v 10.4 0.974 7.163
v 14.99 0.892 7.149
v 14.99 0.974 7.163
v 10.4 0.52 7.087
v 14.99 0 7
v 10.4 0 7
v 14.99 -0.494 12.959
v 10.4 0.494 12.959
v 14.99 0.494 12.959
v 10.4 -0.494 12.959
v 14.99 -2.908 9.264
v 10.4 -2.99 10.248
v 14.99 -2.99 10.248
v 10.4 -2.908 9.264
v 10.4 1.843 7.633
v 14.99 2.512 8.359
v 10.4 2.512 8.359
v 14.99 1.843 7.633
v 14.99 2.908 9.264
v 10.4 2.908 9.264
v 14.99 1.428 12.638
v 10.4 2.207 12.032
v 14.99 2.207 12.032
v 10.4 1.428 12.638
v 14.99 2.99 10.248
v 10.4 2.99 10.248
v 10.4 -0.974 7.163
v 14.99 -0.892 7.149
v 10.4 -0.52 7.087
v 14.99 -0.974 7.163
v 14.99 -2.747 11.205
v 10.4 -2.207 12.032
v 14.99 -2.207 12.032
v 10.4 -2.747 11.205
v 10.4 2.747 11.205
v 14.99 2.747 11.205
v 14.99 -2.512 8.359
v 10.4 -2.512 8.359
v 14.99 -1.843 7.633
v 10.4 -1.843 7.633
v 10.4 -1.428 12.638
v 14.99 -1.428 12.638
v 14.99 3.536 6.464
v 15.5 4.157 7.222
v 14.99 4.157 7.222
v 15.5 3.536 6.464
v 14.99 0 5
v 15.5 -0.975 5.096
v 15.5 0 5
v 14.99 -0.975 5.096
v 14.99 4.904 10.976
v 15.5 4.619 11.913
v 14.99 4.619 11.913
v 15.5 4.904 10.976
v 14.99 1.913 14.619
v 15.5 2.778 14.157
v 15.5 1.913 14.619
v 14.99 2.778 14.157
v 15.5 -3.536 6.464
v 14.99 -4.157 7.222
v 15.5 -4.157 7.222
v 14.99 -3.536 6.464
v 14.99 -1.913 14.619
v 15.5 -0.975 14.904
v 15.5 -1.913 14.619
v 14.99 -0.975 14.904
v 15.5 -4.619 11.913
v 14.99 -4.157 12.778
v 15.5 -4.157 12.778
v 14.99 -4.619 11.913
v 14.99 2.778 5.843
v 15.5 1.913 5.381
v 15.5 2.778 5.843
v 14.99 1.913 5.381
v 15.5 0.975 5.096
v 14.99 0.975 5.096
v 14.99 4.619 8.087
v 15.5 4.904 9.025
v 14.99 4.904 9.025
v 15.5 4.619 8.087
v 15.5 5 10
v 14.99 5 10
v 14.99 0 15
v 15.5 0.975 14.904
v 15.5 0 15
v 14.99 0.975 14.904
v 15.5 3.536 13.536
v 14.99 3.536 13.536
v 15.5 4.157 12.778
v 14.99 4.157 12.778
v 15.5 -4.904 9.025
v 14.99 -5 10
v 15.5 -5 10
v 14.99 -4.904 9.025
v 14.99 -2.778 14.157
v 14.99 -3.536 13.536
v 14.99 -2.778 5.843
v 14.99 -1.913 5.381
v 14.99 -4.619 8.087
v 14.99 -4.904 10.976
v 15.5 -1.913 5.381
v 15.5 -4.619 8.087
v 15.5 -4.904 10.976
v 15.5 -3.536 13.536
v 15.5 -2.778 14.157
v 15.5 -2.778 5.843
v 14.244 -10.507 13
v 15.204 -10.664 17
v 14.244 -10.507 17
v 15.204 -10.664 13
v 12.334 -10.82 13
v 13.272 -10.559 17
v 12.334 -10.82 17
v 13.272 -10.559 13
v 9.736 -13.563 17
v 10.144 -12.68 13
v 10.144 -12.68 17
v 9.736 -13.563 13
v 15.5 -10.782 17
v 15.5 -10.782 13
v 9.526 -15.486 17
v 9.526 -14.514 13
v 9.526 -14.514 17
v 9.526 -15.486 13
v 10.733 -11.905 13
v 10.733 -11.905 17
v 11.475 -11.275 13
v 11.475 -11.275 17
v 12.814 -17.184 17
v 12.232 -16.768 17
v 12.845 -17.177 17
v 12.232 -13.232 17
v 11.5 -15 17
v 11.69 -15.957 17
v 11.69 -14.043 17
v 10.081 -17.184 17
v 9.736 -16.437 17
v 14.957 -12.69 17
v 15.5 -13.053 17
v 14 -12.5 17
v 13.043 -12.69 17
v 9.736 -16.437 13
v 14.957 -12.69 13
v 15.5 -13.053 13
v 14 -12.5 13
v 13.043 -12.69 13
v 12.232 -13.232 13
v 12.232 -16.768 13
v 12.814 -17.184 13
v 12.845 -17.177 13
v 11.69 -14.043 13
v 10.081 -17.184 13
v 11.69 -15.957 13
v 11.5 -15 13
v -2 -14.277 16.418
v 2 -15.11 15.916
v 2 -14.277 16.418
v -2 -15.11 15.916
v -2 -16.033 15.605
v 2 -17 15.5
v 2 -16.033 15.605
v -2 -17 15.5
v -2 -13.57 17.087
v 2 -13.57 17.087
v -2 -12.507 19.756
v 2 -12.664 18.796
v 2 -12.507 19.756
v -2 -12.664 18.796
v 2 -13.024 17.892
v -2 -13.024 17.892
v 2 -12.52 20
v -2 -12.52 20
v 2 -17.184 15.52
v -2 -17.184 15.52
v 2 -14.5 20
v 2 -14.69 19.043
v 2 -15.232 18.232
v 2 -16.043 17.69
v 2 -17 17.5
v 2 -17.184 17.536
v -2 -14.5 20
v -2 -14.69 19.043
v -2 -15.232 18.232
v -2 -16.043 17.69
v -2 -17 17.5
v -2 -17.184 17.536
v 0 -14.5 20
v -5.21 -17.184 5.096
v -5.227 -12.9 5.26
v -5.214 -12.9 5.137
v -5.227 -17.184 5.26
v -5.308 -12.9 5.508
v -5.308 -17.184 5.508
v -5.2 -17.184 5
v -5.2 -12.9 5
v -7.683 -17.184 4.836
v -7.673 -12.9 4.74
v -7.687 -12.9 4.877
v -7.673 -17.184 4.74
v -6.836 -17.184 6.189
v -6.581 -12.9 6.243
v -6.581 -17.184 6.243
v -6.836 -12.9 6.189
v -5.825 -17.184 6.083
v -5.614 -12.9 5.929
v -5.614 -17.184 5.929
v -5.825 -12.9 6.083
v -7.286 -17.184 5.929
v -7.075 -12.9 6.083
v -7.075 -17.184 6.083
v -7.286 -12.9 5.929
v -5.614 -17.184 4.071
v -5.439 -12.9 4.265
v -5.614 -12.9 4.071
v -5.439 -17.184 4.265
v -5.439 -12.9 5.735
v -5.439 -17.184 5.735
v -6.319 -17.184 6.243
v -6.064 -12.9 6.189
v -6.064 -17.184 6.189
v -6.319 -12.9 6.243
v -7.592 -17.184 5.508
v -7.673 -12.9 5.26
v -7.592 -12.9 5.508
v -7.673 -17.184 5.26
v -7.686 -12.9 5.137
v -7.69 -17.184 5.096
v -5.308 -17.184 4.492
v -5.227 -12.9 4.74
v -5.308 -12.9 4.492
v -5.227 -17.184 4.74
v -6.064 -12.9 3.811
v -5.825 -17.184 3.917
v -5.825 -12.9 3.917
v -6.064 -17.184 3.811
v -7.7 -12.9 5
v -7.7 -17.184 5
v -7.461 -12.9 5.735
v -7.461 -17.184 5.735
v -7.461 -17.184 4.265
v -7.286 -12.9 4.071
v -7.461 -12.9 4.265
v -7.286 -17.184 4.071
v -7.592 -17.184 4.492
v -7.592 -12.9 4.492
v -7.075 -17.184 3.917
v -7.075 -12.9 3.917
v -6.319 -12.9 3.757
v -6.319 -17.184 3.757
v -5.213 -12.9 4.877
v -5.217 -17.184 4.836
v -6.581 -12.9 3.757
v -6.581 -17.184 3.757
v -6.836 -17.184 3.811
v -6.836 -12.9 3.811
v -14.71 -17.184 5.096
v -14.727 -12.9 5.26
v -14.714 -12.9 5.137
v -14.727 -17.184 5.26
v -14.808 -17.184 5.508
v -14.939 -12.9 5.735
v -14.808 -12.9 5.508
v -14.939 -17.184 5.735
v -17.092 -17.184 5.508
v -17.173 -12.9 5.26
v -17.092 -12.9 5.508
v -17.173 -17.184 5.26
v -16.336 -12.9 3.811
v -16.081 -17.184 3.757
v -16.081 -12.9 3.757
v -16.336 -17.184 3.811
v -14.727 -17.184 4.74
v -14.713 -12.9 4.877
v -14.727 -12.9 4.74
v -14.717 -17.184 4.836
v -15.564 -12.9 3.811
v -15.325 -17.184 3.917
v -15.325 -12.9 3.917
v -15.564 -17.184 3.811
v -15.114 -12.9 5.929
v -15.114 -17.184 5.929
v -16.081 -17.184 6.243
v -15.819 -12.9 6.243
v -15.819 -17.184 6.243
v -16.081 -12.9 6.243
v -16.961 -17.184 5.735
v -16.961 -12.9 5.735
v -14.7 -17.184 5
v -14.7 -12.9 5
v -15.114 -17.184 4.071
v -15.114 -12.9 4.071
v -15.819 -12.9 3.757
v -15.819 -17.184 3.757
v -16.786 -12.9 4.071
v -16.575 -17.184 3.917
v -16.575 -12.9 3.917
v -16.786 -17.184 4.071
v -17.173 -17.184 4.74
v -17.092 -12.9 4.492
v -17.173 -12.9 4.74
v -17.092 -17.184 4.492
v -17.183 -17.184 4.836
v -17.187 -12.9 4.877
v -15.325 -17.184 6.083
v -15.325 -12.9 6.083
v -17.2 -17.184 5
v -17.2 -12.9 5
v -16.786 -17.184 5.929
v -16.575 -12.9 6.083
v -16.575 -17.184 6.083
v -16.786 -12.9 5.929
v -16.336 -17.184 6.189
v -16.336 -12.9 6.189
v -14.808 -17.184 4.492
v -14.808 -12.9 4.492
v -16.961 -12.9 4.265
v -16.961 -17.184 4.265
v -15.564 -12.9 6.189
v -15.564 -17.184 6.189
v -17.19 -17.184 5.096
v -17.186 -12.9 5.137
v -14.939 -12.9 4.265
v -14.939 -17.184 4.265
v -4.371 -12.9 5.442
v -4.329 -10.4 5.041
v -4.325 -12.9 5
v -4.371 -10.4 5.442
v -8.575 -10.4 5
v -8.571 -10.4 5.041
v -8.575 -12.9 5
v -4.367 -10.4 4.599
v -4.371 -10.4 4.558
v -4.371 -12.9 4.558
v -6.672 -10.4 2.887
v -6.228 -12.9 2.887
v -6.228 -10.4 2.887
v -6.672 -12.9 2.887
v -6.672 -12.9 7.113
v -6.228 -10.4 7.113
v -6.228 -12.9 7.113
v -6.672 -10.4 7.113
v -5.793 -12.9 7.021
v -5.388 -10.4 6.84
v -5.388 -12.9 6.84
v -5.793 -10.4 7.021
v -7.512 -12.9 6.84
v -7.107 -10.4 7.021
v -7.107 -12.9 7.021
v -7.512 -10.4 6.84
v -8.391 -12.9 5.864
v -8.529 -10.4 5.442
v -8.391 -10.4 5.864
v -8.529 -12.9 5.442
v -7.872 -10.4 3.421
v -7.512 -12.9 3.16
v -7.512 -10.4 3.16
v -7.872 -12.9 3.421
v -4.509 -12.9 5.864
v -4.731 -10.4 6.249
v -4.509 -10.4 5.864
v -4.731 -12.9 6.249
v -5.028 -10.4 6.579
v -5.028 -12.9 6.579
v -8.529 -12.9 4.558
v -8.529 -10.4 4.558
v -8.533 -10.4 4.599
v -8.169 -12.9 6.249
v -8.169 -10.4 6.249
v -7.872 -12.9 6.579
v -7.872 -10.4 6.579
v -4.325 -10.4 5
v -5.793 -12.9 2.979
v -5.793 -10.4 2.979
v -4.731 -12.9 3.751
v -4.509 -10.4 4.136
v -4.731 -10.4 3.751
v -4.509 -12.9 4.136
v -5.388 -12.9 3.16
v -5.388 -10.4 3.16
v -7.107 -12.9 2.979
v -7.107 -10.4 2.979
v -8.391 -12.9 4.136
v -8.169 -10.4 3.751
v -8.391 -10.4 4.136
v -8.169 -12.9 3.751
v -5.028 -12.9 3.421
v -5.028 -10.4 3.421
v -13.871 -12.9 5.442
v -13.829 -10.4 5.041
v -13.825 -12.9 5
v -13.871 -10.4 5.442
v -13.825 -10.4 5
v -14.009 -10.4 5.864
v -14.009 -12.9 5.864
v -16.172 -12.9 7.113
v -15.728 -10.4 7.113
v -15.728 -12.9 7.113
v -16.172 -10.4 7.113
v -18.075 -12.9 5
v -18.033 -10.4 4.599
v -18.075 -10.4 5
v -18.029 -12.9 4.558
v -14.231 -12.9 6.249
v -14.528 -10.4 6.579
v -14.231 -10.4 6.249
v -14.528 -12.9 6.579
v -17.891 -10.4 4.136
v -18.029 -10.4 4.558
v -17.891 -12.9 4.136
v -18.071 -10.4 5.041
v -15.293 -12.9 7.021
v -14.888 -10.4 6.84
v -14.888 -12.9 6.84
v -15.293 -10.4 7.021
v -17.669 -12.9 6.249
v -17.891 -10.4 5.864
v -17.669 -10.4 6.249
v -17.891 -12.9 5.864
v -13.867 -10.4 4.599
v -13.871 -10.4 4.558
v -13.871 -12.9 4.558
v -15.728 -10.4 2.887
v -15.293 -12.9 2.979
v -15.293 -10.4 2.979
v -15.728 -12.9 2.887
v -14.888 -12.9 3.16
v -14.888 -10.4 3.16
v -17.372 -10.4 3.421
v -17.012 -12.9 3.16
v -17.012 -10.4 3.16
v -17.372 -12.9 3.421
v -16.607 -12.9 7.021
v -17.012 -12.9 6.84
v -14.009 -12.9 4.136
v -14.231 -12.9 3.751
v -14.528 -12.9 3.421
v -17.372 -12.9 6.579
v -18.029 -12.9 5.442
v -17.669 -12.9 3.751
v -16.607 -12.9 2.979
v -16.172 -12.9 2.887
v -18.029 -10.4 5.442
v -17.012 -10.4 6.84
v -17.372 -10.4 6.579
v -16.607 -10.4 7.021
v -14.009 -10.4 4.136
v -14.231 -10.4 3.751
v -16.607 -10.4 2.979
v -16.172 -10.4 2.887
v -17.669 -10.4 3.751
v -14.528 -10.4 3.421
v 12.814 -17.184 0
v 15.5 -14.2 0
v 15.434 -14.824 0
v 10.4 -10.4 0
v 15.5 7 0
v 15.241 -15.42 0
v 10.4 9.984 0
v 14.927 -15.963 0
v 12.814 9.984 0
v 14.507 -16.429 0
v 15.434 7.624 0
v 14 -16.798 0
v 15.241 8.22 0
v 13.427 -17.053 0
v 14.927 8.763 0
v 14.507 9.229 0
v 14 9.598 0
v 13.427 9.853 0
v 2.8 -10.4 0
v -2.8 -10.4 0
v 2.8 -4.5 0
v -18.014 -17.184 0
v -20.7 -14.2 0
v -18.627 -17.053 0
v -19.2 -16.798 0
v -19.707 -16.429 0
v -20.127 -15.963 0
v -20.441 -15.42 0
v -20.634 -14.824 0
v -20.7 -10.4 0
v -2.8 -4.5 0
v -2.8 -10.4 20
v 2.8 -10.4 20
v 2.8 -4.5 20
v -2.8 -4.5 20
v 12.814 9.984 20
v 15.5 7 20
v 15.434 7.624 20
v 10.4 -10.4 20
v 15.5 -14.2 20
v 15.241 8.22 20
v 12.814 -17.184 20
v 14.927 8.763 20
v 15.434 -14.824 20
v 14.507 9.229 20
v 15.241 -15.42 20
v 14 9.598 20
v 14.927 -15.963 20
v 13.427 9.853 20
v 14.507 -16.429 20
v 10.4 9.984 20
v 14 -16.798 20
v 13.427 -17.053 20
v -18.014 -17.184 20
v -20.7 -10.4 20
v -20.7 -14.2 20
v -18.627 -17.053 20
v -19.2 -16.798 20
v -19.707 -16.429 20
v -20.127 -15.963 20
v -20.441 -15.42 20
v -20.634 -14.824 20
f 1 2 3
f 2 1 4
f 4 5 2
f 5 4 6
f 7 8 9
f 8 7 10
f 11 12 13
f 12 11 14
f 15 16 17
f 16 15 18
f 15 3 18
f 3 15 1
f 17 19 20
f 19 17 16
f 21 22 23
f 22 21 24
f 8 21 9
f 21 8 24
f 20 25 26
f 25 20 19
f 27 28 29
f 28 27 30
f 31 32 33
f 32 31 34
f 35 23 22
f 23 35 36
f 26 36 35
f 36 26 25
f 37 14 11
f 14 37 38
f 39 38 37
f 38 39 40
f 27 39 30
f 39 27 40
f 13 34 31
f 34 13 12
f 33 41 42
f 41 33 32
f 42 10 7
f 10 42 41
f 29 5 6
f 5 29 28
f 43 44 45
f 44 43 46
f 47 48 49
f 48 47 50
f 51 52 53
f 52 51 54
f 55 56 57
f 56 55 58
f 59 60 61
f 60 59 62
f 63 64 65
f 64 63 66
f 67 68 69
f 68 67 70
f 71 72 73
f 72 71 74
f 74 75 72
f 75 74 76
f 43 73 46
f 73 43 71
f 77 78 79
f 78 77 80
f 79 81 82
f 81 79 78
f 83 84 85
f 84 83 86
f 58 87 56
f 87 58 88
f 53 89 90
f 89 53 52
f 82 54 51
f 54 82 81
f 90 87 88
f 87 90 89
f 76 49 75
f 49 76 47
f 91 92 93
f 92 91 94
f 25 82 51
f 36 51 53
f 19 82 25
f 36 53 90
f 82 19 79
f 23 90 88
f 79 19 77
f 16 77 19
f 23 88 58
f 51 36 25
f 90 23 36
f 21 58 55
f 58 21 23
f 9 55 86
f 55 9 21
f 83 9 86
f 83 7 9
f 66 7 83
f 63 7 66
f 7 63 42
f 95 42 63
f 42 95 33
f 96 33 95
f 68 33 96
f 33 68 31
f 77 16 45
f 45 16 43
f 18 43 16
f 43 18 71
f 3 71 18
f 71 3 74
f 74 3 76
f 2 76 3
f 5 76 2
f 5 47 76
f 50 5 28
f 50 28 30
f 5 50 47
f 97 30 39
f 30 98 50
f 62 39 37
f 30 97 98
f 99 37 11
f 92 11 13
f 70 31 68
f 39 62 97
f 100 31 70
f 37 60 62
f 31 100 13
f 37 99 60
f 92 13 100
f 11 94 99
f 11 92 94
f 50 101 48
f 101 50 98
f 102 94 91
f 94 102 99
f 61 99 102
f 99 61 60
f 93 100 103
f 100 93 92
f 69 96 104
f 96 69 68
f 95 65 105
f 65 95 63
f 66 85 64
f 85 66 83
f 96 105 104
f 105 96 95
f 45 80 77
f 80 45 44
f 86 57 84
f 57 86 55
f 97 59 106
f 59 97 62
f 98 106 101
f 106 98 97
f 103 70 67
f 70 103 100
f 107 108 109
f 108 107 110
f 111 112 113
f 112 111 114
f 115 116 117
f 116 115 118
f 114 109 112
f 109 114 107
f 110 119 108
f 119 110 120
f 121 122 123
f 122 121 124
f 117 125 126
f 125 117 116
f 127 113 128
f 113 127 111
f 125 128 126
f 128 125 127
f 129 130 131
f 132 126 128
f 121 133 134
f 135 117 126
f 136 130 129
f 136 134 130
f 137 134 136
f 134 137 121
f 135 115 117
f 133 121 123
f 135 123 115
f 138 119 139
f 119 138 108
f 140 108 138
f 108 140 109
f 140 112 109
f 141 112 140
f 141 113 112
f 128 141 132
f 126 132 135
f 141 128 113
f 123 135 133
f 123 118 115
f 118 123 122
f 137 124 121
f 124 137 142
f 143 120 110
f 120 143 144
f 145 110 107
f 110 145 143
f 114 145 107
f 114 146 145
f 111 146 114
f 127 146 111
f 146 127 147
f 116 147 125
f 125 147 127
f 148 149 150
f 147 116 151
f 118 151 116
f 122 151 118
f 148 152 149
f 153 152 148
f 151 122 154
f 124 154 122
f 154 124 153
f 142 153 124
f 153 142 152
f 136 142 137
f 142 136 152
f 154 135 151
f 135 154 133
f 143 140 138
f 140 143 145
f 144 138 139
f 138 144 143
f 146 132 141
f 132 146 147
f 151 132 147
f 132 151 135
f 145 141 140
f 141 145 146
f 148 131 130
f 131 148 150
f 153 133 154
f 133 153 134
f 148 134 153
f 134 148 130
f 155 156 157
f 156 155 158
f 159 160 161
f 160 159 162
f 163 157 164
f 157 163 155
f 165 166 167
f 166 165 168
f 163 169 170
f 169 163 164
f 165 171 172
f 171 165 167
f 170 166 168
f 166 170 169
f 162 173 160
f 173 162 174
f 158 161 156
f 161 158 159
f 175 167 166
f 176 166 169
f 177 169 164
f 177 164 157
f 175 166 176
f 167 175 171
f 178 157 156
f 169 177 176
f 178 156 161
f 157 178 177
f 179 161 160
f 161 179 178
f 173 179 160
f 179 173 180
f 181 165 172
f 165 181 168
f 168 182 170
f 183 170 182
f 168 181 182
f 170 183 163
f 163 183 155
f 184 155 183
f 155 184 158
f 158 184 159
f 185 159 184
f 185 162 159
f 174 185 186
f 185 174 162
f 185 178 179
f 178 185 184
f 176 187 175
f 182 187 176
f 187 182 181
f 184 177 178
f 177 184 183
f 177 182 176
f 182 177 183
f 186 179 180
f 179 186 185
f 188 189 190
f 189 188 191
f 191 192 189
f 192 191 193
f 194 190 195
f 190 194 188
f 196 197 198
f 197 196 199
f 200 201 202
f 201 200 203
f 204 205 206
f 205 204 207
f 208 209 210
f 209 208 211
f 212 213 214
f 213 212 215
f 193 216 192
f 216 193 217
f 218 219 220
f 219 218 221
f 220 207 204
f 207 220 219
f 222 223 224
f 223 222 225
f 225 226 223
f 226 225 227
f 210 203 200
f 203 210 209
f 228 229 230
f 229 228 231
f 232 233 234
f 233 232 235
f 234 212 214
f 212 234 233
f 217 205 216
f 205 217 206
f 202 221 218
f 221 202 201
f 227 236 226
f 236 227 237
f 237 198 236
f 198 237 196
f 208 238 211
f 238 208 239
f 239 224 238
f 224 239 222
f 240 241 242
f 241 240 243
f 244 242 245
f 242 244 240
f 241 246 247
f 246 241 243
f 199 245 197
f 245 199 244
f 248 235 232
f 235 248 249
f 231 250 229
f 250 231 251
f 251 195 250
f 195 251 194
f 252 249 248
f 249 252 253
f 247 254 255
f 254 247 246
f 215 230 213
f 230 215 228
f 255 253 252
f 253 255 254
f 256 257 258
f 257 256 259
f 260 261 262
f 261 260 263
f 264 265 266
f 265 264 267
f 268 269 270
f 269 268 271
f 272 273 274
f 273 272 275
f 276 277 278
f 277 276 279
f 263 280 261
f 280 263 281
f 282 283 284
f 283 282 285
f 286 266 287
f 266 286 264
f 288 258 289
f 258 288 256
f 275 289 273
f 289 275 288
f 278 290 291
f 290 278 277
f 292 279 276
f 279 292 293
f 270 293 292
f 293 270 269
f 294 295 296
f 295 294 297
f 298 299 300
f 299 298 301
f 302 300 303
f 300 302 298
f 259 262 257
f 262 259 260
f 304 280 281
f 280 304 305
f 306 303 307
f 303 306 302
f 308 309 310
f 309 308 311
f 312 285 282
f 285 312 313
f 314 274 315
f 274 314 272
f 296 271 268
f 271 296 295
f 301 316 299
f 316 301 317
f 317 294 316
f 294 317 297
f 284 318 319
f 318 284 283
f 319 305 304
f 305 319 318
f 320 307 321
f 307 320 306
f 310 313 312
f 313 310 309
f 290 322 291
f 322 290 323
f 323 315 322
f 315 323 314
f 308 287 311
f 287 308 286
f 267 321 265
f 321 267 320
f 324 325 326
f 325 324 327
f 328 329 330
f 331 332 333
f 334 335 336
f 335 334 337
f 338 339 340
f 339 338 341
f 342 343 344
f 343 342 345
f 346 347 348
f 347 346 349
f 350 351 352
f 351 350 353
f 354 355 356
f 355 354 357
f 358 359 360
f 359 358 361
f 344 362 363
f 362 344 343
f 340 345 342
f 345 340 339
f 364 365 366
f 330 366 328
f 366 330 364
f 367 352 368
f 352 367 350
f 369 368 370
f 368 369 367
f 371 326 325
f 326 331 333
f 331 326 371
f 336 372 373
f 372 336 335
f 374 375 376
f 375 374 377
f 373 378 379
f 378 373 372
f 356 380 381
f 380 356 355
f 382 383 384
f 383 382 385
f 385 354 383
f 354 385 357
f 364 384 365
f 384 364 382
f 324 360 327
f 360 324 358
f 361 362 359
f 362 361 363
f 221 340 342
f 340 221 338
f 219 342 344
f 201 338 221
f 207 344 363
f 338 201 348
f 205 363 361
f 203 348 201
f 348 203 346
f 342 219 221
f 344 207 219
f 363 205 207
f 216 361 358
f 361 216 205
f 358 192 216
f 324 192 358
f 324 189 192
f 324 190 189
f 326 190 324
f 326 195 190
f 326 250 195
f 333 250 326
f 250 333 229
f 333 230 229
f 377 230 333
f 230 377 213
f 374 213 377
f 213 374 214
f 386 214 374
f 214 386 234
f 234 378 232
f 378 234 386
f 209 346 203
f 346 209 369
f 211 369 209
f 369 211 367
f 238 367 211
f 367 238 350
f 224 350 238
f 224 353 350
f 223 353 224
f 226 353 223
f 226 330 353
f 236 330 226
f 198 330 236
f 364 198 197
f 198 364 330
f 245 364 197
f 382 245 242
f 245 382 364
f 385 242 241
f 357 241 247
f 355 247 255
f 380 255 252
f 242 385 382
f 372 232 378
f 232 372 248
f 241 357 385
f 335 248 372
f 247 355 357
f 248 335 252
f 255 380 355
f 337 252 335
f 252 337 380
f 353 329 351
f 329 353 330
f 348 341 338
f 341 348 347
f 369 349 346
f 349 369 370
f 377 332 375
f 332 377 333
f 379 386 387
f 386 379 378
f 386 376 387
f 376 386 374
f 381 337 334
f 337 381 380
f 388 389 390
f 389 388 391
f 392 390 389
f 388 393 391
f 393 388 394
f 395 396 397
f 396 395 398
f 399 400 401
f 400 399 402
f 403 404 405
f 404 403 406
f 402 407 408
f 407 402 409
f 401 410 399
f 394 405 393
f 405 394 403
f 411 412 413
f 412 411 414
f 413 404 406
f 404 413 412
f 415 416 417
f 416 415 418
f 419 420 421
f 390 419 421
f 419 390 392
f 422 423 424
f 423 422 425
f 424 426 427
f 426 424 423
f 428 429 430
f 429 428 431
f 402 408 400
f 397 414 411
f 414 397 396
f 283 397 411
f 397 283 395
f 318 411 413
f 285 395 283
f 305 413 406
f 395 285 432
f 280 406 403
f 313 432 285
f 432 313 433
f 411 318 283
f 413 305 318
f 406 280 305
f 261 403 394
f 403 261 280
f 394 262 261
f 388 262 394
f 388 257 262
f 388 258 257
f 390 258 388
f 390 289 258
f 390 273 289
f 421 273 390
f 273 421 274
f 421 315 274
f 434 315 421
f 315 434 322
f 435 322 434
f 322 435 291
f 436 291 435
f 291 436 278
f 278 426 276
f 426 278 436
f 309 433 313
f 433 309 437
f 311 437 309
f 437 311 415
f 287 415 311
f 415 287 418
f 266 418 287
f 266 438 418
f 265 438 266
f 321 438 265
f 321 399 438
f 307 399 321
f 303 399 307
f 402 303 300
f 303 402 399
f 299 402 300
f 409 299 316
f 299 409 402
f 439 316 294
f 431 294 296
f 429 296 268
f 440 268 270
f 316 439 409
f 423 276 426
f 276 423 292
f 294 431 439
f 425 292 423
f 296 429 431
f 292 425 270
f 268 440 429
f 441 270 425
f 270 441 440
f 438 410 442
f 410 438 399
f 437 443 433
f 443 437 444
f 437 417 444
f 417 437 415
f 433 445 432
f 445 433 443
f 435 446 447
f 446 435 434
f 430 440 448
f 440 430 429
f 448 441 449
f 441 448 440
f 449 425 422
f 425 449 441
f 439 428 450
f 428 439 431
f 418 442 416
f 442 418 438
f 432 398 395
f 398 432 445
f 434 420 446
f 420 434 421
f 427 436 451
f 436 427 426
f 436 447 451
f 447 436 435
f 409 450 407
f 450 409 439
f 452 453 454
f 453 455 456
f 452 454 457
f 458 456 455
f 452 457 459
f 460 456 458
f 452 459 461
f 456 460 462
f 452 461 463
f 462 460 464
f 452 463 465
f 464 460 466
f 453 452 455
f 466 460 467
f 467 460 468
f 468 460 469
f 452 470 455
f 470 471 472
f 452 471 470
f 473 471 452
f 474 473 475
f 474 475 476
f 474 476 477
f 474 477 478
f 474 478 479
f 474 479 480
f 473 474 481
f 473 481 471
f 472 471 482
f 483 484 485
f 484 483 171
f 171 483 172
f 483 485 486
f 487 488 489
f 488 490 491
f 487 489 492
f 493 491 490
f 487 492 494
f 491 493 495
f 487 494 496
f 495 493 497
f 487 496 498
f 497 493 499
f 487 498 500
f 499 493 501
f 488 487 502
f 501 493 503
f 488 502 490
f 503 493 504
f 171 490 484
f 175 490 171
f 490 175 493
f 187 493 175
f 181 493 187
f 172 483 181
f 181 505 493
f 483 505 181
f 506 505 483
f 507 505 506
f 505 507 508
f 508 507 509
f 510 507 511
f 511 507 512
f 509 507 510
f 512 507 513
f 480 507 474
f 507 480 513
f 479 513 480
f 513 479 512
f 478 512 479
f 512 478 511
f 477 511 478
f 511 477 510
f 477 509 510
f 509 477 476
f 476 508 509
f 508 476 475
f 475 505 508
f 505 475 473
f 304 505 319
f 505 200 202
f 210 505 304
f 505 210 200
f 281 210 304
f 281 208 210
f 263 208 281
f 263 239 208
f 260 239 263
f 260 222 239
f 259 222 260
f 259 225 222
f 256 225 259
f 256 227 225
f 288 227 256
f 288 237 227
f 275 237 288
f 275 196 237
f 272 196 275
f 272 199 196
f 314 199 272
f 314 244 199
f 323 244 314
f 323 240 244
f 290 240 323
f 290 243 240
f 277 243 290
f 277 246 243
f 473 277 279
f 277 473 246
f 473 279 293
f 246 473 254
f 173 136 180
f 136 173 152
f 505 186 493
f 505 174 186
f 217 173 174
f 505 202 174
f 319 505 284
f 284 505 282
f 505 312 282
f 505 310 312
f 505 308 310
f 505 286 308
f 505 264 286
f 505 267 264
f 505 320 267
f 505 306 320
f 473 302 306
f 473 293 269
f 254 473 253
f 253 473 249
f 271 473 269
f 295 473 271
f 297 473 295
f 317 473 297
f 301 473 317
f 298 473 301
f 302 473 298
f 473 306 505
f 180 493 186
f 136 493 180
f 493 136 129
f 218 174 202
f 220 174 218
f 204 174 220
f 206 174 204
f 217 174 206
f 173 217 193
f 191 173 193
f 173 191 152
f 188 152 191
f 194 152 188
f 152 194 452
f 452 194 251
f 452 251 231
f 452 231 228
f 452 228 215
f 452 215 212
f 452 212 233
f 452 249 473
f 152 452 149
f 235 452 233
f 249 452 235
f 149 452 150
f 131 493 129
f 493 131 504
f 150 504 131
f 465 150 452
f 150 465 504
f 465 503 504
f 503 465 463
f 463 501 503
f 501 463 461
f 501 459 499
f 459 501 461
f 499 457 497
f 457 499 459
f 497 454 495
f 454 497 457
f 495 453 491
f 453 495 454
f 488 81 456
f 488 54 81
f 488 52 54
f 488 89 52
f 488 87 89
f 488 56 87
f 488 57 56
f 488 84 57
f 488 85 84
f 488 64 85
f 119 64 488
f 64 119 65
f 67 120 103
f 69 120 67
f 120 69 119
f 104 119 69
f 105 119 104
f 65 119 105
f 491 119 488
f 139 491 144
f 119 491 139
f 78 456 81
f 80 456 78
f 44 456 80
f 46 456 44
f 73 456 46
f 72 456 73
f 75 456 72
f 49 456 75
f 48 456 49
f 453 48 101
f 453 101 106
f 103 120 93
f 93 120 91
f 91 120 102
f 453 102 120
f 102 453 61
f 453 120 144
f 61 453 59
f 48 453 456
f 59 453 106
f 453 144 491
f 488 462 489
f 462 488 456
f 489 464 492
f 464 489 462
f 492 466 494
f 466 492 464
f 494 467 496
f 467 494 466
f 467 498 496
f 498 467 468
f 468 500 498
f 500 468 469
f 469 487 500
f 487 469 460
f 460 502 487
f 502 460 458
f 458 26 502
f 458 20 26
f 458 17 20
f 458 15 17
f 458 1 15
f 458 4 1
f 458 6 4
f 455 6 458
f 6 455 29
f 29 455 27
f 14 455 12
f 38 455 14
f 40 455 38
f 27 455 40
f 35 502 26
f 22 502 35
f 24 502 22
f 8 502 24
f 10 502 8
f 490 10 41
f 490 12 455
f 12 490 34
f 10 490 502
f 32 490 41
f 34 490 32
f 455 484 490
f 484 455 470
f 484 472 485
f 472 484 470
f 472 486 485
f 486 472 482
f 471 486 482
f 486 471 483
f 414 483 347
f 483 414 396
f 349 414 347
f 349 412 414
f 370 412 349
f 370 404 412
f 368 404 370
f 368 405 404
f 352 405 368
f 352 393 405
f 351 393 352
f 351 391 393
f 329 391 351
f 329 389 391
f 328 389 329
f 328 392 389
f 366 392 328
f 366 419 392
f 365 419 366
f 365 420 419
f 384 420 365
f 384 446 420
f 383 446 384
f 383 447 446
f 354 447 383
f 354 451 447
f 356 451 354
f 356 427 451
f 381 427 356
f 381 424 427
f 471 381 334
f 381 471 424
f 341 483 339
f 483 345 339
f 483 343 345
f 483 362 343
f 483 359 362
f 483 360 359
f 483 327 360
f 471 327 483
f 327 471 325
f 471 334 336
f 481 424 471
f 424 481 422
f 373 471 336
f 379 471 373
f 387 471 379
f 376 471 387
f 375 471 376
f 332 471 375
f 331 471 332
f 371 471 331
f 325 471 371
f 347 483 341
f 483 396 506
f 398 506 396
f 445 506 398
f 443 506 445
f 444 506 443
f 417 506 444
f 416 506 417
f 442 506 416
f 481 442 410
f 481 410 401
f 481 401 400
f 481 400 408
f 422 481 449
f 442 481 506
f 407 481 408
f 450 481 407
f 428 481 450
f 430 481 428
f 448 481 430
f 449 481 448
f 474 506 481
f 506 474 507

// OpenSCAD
// file: config.scad
//triangular vertex peices
$fa=1;
$fs=1;
ep=0.01;
//parametrics
//cutout for the AL extrusions, with 2 opposite tracks having an inset
//tweaked from ideal to satisfy printing limits
side=20;    //size of a side of the extrusion
slot=6-.4;     //width of the slots, on the face
central=8+1;  //how wide the central pillar is; the slot depth is then (side-central)/2
//corner radius
vertex_rad=40;
//distance from edge to vertical 2020 shaft
vert_inset=6;
//thickness of the wall on the inside of the triangle
inside_wall_thick=6;
//belt channel width
channel_width=26;
//lenght of plastic alongside in-plane extrusion
wing_length=70;
//height of the frame piece
piece_h=50;
//mounting hardware
m5_slot=6;
m5_head=10; //diameter of M5 head
m5_wall=5; //thickness of plastic between M5 and extrusion
//m3 sizing
m3_slot=3.5;
module 2020_cutout_two()
{
    ss=side+.8; //printer tolerance
    difference()
    {
        //main body
        square([ss,ss],center=true);
        //track slots
        translate([ss/2+central/2,0])square([ss,slot],center=true);
        translate([-(ss/2+central/2),0])square([ss,slot],center=true);
        translate([0,(ss/2+central/2)])square([slot,ss],center=true);
    }
}
module nut_fill()
{
    nut_w=10.5+1;
    nut_w_b=6.5+1.5;
    nut_depth=(side-central)/2;
    //spaces for inserting the t slot nuts
    //translate([0,0,-nut_depth/2])
    hull()
    {
        cube([nut_w+3,nut_w*2,ep],center=true);
        translate([0,0,-nut_depth])cube([nut_w_b,nut_w*2,ep],center=true);
    }
    //cube([nut_w,nut_w*2,nut_depth],center=true);
}
module base_shape()
{
    difference()
    {
        union()
        {
            //rounded vertex
            circle(r=vertex_rad,center=true);
            //'wings' along in plane extrusion lengths
            rotate([0,0,60])translate([-side+vertex_rad-inside_wall_thick*2,wing_length/2])square([inside_wall_thick*4,wing_length],center=true); 
            rotate([0,0,-60])translate([-side+vertex_rad-inside_wall_thick*2,-wing_length/2])square([inside_wall_thick*4,wing_length],center=true); 
        }
        //in plane extrusions
        rotate([0,0,60])translate([-side/2+vertex_rad,vertex_rad/2])square([side,vertex_rad],center=true);
        rotate([0,0,-60])translate([-side/2+vertex_rad,-vertex_rad/2])square([side,vertex_rad],center=true);
        //vertical extrusion
        translate([(-side/2)+vertex_rad-vert_inset,0,0])rotate([0,0,90])2020_cutout_two();
        //opening for belts or motor
        motor_gap();
        //any remaining portion of hte circle we want removed
        open_inside();
    }
}
module motor_gap()
{
    //create rough triangle of unneeded area
    round=2;
    xx=-side-inside_wall_thick-round;
    qq=-(channel_width)/2+vertex_rad-vert_inset-side-inside_wall_thick;
    //make round
    minkowski()
    {
        intersection()
        {
            rotate([0,0,60])translate([xx,0])square([vertex_rad*2,vertex_rad*4],center=true);
            rotate([0,0,-60])translate([xx,0])square([vertex_rad*2,vertex_rad*4],center=true);
            translate([qq,0])square([channel_width-round*2,vertex_rad*2],center=true);
        }
        circle(r=round+0.01,$fn=40);
    }
}
module open_inside()
{
    //rest of interior
    //create rough triangle of unneeded area
    round=2;
    xx=-side-inside_wall_thick-round;
    qq=-side-inside_wall_thick-vert_inset-channel_width-inside_wall_thick;
    //make round
    minkowski()
    {
        intersection()
        {
            rotate([0,0,60])translate([xx,wing_length])square([vertex_rad*2,vertex_rad*4+wing_length],center=true);
            rotate([0,0,-60])translate([xx,-wing_length])square([vertex_rad*2,vertex_rad*4+wing_length],center=true);
            translate([qq,0])square([vertex_rad*2-round*2,vertex_rad*2+wing_length],center=true);
        }
        circle(r=round+0.01,$fn=40);
    }
}
// main file
include<config.scad>;

switch_mount_hole_spacing=9.5;
switch_mount_hh=5;
module m5_hole()
{
    rotate([0,90,0])cylinder(r=m5_slot/2,h=inside_wall_thick*2,center=true);
    rotate([0,90,0])translate([0,0,inside_wall_thick+m5_wall-ep])cylinder(r=m5_head/2,h=inside_wall_thick*2,center=true);
}

//m5_hole();
xside=side+m5_wall;
yside=side+1+5+1.2;
round=3;
overhang=11.2;
module profile_a()
{
    difference()
    {
        translate([round,-(yside-side)/2,0])minkowski()
        {
            square([xside-round*2,yside-round*2],center=true);
            circle(r=round,$fn=30);
        }
        extrusion_side_profile();
    }
}
module profile_b()
{
    //extension
    
    difference()
    {
        translate([round-overhang/2,-(yside-side)/2,0])minkowski()
        {
            square([xside-round*2+overhang,yside-round*2],center=true);
            circle(r=round,$fn=30);
        }
        extrusion_side_profile();
        translate([-overhang-side/2,0])square([side+overhang,side+.8],center=true);
    }
}
module extrusion_side_profile()
{
    rotate([0,0,90])2020_cutout_two();
    translate([-side/2+slot/2+ep,side/2-slot/2-ep])square([side,side],center=true);
    
}
hh=20;
m2_slot=2.5;
m2_head=3.75+.5;
head_d=2.5;
module design_a()
{
difference()
{
    linear_extrude(hh)profile_a();
    translate([side/2,0,hh/2])m5_hole();
    //m2 mounting holes
    translate([switch_mount_hole_spacing/2,-yside/2,switch_mount_hh])rotate([90,0,0])cylinder(r=m2_slot/2,h=yside,center=true,$fn=30);
    translate([-switch_mount_hole_spacing/2,-yside/2,switch_mount_hh])rotate([90,0,0])cylinder(r=m2_slot/2,h=yside,center=true,$fn=30);
    //space for m2 head
    translate([switch_mount_hole_spacing/2,yside/2-side/2-head_d-.4,switch_mount_hh])rotate([90,0,0])cylinder(r=m2_head/2,h=yside,center=true,$fn=30);
    translate([-switch_mount_hole_spacing/2,yside/2-side/2-head_d-.4,switch_mount_hh])rotate([90,0,0])cylinder(r=m2_head/2,h=yside,center=true,$fn=30);
    
    
    //placed manually annulus
    translate([0+10+4,0-10-5,15])difference()
    {
        cylinder(r=4.5,h=4,center=true);
        cylinder(r=2.5,h=4.5,center=true);
    }
    //placed manually annulus
    translate([0,0-10-7,20])rotate([0,90,0])difference()
    {
        cylinder(r=4.5,h=4,center=true);
        cylinder(r=2.5,h=4.5,center=true);
    }
}
}

module design_b()
{
    difference()
    {
        linear_extrude(hh)profile_b();
        translate([side/2,0,hh/2])m5_hole();
        //m2 mounting holes
        translate([-overhang,0,0])
        {
        translate([switch_mount_hole_spacing/2,-yside/2,switch_mount_hh])rotate([90,0,0])cylinder(r=m2_slot/2,h=yside,center=true,$fn=30);
        translate([-switch_mount_hole_spacing/2,-yside/2,switch_mount_hh])rotate([90,0,0])cylinder(r=m2_slot/2,h=yside,center=true,$fn=30);
        //space for m2 head
        translate([switch_mount_hole_spacing/2,yside/2-side/2-head_d-.4,switch_mount_hh])rotate([90,0,0])cylinder(r=m2_head/2,h=yside,center=true,$fn=30);
        translate([-switch_mount_hole_spacing/2,yside/2-side/2-head_d-.4,switch_mount_hh])rotate([90,0,0])cylinder(r=m2_head/2,h=yside,center=true,$fn=30);
        }
        
        //placed manually annulus
        translate([0+10+4,0-10-5,15])difference()
        {
            cylinder(r=4.5,h=4,center=true);
            cylinder(r=2.5,h=4.5,center=true);
        }
        //placed manually annulus
        translate([0,0-10-7,20])rotate([0,90,0])difference()
        {
            cylinder(r=4.5,h=4,center=true);
            cylinder(r=2.5,h=4.5,center=true);
        }
    }
}
design_b();
